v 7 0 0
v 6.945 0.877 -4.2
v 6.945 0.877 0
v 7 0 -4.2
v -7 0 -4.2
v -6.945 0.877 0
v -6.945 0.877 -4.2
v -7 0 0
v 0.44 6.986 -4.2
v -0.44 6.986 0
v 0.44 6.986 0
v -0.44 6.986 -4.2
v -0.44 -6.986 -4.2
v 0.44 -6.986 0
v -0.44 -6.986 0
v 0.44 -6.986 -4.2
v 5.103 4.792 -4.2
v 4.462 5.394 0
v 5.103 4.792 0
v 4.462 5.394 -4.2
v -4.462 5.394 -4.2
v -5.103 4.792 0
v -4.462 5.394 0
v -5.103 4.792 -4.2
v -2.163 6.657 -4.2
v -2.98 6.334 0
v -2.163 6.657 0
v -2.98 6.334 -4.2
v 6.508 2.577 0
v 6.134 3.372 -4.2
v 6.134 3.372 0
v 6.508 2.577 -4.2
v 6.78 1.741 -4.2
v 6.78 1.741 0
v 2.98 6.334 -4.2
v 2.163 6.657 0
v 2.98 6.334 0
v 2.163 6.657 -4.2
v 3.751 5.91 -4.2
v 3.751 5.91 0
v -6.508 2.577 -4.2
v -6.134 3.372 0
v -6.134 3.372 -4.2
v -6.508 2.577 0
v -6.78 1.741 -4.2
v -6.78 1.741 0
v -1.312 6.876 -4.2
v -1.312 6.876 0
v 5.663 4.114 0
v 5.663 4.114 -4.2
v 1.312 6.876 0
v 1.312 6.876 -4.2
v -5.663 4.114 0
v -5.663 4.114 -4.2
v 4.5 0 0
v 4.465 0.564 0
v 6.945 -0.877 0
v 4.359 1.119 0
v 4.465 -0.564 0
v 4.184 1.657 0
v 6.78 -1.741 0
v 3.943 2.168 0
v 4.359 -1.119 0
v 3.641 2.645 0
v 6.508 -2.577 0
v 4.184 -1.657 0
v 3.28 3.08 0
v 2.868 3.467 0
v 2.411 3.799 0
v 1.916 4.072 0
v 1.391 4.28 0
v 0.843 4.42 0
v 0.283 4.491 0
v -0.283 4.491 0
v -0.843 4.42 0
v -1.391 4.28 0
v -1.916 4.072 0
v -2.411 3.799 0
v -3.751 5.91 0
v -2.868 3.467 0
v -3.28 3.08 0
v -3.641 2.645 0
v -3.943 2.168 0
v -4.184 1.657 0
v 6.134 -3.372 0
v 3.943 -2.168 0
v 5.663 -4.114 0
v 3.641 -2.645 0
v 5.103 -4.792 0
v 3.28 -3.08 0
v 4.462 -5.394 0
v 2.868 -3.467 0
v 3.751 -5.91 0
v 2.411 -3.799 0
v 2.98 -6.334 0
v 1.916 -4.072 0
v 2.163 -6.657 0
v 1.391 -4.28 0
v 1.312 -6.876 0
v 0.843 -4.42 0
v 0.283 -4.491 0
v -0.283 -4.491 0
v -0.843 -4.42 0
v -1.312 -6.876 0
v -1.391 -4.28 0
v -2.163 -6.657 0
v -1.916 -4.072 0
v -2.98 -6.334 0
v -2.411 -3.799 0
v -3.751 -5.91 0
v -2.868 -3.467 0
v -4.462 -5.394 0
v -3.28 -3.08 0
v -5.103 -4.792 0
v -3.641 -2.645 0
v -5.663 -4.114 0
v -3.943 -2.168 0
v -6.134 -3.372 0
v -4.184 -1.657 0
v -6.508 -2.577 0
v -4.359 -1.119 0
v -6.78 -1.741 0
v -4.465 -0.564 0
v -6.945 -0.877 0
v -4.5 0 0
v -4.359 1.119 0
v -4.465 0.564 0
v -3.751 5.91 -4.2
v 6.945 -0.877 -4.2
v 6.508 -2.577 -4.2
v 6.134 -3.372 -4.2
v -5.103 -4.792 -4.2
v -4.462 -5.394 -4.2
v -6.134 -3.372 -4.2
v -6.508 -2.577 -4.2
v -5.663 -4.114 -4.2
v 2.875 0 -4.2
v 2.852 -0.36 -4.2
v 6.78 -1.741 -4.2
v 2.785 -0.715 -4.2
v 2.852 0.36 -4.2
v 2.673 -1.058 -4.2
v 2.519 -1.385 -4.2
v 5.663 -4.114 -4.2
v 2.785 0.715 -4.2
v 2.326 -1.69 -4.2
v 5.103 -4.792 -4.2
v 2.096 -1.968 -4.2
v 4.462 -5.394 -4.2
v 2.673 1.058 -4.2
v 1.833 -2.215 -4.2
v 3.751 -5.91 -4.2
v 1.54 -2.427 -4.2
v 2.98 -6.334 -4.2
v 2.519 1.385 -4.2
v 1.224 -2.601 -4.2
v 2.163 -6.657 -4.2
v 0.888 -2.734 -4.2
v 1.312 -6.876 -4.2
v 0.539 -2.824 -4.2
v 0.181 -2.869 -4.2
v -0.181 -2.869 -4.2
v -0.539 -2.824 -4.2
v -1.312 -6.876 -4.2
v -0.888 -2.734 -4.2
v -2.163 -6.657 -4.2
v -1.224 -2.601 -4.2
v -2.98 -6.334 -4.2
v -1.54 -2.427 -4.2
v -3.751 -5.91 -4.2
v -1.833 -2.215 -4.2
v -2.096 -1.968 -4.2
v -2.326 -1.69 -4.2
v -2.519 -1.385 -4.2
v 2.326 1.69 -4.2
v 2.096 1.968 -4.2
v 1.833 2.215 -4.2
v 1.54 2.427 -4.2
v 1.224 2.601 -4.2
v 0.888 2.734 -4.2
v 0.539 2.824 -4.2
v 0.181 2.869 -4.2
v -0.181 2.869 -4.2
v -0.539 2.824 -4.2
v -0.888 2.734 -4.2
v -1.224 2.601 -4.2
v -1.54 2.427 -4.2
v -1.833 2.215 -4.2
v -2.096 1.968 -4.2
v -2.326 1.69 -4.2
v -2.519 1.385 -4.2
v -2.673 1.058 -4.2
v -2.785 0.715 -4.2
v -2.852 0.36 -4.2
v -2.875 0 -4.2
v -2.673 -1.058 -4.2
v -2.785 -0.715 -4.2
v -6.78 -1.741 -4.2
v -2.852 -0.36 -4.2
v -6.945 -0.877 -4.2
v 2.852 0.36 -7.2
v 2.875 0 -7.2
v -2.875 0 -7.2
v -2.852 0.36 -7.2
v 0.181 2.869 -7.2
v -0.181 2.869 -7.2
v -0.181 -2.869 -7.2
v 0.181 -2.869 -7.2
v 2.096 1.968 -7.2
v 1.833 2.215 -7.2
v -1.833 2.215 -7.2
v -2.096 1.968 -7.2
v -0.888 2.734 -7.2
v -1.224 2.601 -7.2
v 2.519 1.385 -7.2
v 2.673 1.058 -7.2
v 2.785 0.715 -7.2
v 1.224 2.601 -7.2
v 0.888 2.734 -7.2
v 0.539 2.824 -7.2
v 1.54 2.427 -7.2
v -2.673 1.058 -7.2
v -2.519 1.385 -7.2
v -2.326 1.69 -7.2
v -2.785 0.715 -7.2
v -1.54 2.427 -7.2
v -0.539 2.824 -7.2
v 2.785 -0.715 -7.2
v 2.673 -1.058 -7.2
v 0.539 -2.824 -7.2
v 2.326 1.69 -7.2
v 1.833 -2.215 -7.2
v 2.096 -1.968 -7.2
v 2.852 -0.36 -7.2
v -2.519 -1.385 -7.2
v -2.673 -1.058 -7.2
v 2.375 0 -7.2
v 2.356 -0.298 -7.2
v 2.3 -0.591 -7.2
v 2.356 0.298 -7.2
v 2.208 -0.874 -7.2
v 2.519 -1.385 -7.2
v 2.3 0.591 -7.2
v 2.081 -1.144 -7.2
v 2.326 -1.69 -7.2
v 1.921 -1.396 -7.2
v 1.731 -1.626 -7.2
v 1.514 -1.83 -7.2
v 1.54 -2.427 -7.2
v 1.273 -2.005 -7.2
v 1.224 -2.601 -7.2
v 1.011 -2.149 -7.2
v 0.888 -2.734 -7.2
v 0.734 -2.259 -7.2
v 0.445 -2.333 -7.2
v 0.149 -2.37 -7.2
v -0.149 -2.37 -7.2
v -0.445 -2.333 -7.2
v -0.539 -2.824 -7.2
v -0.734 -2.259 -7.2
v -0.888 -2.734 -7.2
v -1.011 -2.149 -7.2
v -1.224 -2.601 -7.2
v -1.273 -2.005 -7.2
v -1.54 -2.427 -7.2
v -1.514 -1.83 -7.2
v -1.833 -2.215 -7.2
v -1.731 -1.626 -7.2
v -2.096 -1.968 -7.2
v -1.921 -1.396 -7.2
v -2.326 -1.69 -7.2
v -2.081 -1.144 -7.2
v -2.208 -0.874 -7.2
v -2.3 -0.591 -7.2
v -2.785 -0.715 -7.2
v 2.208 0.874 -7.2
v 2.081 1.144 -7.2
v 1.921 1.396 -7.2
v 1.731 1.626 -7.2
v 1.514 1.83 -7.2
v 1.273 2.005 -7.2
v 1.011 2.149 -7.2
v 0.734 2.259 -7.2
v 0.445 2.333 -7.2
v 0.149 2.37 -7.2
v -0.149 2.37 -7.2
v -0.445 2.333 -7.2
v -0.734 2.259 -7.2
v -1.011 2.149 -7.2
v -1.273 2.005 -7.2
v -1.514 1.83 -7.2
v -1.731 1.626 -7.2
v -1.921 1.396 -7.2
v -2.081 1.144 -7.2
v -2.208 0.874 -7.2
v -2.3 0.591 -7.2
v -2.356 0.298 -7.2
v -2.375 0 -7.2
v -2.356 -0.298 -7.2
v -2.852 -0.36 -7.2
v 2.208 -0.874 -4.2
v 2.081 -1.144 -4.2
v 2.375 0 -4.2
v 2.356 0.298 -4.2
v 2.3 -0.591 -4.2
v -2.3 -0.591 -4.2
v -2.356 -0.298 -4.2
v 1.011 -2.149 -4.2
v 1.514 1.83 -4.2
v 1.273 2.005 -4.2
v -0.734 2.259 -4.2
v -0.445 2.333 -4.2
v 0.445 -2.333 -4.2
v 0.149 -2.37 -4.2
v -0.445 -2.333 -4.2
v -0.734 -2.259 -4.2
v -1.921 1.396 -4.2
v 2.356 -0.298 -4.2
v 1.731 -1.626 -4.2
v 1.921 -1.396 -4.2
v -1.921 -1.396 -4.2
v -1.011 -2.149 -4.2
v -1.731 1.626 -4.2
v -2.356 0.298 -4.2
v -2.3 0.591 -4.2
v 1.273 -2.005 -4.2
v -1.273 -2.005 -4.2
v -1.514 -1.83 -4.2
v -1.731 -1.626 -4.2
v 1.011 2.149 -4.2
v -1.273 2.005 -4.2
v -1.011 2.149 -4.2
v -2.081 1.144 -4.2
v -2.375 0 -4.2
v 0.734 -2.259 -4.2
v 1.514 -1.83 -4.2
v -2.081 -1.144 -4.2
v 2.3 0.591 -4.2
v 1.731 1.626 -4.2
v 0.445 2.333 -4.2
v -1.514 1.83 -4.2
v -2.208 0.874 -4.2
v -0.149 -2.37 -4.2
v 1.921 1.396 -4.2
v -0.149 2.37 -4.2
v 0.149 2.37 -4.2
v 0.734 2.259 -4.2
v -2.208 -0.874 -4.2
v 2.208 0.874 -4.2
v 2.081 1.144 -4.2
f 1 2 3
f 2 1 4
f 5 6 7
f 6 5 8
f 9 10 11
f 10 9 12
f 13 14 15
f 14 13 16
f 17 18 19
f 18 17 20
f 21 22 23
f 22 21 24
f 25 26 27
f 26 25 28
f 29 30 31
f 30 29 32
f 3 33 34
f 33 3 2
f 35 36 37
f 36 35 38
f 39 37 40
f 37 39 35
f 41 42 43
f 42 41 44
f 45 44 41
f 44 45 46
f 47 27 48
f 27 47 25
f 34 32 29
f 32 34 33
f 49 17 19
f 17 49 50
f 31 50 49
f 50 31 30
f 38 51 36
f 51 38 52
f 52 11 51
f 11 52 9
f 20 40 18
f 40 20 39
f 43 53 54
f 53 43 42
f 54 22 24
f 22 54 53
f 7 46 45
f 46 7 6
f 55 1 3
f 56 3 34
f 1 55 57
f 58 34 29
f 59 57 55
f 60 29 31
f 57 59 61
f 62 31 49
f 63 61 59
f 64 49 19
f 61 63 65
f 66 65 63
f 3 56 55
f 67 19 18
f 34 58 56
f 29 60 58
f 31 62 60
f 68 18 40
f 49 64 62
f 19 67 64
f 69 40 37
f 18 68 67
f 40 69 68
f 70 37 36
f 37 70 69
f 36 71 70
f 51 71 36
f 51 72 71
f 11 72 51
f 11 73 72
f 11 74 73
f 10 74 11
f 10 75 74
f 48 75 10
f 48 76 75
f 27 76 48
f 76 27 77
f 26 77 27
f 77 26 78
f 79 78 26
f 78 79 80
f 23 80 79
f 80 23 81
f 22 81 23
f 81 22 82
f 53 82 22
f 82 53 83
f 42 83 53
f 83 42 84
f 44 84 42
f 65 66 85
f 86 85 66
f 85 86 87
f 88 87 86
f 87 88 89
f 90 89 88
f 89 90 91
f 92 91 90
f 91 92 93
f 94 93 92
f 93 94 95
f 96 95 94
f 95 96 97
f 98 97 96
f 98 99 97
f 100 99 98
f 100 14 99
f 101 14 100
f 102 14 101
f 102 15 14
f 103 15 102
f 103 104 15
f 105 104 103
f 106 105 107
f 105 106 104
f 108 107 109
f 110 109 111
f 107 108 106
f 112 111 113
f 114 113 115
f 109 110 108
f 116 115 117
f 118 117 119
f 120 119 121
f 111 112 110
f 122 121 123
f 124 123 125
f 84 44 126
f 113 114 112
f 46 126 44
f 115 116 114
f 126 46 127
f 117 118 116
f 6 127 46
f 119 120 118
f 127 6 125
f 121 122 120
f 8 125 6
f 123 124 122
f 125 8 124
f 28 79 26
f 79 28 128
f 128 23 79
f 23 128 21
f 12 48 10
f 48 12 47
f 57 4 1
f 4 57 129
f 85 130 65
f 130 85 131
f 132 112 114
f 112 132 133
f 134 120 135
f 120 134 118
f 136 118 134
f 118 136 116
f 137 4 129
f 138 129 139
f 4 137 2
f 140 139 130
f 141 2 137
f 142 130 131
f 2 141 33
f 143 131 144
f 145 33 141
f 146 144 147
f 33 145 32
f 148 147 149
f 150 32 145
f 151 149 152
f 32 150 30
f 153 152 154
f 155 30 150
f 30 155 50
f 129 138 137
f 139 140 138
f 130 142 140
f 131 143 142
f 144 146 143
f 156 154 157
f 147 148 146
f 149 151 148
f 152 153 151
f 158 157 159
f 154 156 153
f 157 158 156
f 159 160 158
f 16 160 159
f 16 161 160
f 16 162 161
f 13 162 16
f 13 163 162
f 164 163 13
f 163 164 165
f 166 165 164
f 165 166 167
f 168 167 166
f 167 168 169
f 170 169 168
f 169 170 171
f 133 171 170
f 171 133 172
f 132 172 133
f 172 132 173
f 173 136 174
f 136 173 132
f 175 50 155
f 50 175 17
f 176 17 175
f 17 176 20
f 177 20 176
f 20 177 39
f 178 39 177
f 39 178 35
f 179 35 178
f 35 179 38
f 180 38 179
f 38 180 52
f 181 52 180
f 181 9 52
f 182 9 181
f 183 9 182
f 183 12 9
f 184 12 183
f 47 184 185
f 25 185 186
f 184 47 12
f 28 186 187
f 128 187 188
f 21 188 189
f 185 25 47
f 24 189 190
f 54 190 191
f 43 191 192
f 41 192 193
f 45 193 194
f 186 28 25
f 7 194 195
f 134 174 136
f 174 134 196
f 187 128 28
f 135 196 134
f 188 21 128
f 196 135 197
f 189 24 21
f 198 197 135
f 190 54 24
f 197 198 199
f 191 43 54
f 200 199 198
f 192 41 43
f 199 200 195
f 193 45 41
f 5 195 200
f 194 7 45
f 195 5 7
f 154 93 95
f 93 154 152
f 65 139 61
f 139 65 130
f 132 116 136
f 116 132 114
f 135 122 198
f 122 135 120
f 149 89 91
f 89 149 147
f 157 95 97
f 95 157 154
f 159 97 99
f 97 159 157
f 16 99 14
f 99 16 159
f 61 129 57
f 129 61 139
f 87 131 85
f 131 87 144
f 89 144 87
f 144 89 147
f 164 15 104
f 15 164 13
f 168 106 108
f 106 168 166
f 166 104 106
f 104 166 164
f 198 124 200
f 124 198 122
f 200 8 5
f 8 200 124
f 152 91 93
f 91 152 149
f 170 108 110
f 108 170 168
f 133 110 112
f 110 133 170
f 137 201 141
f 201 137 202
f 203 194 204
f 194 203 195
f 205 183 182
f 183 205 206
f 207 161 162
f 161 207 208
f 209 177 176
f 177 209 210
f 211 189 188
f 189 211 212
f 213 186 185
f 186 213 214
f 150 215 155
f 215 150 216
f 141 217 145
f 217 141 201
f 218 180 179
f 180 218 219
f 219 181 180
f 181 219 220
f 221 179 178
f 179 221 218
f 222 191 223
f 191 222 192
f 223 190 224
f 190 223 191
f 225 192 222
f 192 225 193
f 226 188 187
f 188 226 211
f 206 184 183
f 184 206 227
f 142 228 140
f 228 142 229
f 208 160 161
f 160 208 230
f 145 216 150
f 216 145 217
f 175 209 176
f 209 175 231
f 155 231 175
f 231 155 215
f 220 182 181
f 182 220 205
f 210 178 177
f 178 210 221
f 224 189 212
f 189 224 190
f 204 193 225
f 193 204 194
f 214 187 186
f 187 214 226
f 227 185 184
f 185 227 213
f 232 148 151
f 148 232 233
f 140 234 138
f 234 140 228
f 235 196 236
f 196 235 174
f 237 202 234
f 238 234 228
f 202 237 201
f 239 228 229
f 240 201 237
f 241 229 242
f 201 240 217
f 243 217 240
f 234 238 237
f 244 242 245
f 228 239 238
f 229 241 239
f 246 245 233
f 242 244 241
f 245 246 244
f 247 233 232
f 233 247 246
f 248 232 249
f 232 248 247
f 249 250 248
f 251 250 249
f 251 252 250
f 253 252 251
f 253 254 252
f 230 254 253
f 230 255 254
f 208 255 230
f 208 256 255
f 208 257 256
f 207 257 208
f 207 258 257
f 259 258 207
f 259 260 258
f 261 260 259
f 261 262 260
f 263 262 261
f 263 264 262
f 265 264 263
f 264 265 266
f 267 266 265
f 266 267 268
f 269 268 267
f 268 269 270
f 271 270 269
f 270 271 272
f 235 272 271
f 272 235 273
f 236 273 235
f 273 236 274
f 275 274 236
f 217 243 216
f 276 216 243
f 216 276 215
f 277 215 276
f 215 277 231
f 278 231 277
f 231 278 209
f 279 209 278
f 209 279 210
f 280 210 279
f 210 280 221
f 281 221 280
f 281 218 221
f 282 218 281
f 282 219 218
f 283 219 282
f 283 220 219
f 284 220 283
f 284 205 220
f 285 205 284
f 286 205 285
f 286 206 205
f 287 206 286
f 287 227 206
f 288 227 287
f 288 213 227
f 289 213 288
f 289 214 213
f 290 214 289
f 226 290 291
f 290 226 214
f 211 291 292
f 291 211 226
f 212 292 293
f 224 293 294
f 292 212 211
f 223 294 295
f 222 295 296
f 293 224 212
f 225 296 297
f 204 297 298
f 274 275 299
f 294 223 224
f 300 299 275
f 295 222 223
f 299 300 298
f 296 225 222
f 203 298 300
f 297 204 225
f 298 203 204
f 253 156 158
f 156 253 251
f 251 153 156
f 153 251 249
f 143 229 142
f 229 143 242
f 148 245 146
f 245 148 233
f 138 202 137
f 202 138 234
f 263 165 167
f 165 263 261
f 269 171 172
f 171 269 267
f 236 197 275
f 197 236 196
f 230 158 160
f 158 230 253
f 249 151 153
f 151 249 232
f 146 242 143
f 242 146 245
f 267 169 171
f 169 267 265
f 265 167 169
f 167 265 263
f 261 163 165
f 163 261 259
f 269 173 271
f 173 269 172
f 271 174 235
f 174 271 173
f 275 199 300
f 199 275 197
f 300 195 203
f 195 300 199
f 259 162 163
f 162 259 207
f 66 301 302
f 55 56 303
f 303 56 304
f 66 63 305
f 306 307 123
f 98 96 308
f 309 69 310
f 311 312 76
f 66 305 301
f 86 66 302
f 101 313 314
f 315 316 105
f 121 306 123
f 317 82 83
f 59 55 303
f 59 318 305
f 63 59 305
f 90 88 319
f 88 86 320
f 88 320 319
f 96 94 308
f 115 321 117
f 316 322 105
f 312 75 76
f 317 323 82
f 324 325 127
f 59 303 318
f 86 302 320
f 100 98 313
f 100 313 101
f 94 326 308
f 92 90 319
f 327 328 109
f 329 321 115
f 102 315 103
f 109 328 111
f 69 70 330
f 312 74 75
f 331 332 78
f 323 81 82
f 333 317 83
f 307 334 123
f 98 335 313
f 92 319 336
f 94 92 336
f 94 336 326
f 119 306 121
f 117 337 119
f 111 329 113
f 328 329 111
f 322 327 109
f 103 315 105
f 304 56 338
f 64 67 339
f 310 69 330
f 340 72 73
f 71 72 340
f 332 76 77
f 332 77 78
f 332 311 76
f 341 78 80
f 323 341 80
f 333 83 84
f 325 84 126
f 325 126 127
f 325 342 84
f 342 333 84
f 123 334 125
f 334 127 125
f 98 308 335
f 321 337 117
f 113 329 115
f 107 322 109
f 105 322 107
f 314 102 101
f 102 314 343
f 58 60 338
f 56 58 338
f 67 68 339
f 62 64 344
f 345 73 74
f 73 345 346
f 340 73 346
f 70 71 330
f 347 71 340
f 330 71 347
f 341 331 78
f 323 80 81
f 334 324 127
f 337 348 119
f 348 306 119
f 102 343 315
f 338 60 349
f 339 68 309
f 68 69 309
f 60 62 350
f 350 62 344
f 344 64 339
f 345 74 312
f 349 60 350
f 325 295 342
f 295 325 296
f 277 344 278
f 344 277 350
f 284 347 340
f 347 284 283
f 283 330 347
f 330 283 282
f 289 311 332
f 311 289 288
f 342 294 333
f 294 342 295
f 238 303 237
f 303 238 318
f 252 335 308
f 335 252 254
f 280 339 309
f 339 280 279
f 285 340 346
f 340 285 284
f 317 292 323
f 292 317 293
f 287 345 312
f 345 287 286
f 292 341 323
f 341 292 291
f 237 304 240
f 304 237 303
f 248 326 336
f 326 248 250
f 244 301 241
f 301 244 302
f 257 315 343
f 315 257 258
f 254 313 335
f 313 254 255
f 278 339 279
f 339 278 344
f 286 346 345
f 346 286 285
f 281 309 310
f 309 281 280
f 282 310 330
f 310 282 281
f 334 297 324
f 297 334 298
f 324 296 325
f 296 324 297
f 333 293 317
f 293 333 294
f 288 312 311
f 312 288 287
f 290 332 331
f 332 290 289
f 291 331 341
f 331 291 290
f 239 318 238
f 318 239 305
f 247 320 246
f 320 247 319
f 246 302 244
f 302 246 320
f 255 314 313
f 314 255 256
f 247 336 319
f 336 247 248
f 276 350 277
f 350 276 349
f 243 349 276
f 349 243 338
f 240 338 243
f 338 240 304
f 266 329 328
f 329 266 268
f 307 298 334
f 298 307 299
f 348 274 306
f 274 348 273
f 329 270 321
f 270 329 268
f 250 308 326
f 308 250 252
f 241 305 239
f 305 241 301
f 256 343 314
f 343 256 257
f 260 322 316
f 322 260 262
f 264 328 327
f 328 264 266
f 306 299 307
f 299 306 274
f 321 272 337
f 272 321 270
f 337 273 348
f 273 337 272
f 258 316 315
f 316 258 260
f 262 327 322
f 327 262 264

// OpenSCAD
$fn = 50;


difference() {
	union() {
		translate(v = [0, 0, -4.2000000000]) {
			cylinder(h = 4.2000000000, r = 7.0000000000);
		}
		translate(v = [0, 0, -7.2000000000]) {
			cylinder(h = 7.2000000000, r = 2.8750000000);
		}
	}
	union() {
		translate(v = [0, 0, 0]) {
			rotate(a = [0, 0, 0]) {
				difference() {
					union() {
						translate(v = [0, 0, -7.2000000000]) {
							cylinder(h = 7.2000000000, r = 2.2500000000);
						}
						translate(v = [0, 0, -4.2000000000]) {
							cylinder(h = 4.2000000000, r1 = 2.3750000000, r2 = 4.5000000000);
						}
						translate(v = [0, 0, -7.2000000000]) {
							cylinder(h = 7.2000000000, r = 2.3750000000);
						}
						translate(v = [0, 0, -7.2000000000]) {
							cylinder(h = 7.2000000000, r = 2.2500000000);
						}
					}
					union();
				}
			}
		}
	}
}
